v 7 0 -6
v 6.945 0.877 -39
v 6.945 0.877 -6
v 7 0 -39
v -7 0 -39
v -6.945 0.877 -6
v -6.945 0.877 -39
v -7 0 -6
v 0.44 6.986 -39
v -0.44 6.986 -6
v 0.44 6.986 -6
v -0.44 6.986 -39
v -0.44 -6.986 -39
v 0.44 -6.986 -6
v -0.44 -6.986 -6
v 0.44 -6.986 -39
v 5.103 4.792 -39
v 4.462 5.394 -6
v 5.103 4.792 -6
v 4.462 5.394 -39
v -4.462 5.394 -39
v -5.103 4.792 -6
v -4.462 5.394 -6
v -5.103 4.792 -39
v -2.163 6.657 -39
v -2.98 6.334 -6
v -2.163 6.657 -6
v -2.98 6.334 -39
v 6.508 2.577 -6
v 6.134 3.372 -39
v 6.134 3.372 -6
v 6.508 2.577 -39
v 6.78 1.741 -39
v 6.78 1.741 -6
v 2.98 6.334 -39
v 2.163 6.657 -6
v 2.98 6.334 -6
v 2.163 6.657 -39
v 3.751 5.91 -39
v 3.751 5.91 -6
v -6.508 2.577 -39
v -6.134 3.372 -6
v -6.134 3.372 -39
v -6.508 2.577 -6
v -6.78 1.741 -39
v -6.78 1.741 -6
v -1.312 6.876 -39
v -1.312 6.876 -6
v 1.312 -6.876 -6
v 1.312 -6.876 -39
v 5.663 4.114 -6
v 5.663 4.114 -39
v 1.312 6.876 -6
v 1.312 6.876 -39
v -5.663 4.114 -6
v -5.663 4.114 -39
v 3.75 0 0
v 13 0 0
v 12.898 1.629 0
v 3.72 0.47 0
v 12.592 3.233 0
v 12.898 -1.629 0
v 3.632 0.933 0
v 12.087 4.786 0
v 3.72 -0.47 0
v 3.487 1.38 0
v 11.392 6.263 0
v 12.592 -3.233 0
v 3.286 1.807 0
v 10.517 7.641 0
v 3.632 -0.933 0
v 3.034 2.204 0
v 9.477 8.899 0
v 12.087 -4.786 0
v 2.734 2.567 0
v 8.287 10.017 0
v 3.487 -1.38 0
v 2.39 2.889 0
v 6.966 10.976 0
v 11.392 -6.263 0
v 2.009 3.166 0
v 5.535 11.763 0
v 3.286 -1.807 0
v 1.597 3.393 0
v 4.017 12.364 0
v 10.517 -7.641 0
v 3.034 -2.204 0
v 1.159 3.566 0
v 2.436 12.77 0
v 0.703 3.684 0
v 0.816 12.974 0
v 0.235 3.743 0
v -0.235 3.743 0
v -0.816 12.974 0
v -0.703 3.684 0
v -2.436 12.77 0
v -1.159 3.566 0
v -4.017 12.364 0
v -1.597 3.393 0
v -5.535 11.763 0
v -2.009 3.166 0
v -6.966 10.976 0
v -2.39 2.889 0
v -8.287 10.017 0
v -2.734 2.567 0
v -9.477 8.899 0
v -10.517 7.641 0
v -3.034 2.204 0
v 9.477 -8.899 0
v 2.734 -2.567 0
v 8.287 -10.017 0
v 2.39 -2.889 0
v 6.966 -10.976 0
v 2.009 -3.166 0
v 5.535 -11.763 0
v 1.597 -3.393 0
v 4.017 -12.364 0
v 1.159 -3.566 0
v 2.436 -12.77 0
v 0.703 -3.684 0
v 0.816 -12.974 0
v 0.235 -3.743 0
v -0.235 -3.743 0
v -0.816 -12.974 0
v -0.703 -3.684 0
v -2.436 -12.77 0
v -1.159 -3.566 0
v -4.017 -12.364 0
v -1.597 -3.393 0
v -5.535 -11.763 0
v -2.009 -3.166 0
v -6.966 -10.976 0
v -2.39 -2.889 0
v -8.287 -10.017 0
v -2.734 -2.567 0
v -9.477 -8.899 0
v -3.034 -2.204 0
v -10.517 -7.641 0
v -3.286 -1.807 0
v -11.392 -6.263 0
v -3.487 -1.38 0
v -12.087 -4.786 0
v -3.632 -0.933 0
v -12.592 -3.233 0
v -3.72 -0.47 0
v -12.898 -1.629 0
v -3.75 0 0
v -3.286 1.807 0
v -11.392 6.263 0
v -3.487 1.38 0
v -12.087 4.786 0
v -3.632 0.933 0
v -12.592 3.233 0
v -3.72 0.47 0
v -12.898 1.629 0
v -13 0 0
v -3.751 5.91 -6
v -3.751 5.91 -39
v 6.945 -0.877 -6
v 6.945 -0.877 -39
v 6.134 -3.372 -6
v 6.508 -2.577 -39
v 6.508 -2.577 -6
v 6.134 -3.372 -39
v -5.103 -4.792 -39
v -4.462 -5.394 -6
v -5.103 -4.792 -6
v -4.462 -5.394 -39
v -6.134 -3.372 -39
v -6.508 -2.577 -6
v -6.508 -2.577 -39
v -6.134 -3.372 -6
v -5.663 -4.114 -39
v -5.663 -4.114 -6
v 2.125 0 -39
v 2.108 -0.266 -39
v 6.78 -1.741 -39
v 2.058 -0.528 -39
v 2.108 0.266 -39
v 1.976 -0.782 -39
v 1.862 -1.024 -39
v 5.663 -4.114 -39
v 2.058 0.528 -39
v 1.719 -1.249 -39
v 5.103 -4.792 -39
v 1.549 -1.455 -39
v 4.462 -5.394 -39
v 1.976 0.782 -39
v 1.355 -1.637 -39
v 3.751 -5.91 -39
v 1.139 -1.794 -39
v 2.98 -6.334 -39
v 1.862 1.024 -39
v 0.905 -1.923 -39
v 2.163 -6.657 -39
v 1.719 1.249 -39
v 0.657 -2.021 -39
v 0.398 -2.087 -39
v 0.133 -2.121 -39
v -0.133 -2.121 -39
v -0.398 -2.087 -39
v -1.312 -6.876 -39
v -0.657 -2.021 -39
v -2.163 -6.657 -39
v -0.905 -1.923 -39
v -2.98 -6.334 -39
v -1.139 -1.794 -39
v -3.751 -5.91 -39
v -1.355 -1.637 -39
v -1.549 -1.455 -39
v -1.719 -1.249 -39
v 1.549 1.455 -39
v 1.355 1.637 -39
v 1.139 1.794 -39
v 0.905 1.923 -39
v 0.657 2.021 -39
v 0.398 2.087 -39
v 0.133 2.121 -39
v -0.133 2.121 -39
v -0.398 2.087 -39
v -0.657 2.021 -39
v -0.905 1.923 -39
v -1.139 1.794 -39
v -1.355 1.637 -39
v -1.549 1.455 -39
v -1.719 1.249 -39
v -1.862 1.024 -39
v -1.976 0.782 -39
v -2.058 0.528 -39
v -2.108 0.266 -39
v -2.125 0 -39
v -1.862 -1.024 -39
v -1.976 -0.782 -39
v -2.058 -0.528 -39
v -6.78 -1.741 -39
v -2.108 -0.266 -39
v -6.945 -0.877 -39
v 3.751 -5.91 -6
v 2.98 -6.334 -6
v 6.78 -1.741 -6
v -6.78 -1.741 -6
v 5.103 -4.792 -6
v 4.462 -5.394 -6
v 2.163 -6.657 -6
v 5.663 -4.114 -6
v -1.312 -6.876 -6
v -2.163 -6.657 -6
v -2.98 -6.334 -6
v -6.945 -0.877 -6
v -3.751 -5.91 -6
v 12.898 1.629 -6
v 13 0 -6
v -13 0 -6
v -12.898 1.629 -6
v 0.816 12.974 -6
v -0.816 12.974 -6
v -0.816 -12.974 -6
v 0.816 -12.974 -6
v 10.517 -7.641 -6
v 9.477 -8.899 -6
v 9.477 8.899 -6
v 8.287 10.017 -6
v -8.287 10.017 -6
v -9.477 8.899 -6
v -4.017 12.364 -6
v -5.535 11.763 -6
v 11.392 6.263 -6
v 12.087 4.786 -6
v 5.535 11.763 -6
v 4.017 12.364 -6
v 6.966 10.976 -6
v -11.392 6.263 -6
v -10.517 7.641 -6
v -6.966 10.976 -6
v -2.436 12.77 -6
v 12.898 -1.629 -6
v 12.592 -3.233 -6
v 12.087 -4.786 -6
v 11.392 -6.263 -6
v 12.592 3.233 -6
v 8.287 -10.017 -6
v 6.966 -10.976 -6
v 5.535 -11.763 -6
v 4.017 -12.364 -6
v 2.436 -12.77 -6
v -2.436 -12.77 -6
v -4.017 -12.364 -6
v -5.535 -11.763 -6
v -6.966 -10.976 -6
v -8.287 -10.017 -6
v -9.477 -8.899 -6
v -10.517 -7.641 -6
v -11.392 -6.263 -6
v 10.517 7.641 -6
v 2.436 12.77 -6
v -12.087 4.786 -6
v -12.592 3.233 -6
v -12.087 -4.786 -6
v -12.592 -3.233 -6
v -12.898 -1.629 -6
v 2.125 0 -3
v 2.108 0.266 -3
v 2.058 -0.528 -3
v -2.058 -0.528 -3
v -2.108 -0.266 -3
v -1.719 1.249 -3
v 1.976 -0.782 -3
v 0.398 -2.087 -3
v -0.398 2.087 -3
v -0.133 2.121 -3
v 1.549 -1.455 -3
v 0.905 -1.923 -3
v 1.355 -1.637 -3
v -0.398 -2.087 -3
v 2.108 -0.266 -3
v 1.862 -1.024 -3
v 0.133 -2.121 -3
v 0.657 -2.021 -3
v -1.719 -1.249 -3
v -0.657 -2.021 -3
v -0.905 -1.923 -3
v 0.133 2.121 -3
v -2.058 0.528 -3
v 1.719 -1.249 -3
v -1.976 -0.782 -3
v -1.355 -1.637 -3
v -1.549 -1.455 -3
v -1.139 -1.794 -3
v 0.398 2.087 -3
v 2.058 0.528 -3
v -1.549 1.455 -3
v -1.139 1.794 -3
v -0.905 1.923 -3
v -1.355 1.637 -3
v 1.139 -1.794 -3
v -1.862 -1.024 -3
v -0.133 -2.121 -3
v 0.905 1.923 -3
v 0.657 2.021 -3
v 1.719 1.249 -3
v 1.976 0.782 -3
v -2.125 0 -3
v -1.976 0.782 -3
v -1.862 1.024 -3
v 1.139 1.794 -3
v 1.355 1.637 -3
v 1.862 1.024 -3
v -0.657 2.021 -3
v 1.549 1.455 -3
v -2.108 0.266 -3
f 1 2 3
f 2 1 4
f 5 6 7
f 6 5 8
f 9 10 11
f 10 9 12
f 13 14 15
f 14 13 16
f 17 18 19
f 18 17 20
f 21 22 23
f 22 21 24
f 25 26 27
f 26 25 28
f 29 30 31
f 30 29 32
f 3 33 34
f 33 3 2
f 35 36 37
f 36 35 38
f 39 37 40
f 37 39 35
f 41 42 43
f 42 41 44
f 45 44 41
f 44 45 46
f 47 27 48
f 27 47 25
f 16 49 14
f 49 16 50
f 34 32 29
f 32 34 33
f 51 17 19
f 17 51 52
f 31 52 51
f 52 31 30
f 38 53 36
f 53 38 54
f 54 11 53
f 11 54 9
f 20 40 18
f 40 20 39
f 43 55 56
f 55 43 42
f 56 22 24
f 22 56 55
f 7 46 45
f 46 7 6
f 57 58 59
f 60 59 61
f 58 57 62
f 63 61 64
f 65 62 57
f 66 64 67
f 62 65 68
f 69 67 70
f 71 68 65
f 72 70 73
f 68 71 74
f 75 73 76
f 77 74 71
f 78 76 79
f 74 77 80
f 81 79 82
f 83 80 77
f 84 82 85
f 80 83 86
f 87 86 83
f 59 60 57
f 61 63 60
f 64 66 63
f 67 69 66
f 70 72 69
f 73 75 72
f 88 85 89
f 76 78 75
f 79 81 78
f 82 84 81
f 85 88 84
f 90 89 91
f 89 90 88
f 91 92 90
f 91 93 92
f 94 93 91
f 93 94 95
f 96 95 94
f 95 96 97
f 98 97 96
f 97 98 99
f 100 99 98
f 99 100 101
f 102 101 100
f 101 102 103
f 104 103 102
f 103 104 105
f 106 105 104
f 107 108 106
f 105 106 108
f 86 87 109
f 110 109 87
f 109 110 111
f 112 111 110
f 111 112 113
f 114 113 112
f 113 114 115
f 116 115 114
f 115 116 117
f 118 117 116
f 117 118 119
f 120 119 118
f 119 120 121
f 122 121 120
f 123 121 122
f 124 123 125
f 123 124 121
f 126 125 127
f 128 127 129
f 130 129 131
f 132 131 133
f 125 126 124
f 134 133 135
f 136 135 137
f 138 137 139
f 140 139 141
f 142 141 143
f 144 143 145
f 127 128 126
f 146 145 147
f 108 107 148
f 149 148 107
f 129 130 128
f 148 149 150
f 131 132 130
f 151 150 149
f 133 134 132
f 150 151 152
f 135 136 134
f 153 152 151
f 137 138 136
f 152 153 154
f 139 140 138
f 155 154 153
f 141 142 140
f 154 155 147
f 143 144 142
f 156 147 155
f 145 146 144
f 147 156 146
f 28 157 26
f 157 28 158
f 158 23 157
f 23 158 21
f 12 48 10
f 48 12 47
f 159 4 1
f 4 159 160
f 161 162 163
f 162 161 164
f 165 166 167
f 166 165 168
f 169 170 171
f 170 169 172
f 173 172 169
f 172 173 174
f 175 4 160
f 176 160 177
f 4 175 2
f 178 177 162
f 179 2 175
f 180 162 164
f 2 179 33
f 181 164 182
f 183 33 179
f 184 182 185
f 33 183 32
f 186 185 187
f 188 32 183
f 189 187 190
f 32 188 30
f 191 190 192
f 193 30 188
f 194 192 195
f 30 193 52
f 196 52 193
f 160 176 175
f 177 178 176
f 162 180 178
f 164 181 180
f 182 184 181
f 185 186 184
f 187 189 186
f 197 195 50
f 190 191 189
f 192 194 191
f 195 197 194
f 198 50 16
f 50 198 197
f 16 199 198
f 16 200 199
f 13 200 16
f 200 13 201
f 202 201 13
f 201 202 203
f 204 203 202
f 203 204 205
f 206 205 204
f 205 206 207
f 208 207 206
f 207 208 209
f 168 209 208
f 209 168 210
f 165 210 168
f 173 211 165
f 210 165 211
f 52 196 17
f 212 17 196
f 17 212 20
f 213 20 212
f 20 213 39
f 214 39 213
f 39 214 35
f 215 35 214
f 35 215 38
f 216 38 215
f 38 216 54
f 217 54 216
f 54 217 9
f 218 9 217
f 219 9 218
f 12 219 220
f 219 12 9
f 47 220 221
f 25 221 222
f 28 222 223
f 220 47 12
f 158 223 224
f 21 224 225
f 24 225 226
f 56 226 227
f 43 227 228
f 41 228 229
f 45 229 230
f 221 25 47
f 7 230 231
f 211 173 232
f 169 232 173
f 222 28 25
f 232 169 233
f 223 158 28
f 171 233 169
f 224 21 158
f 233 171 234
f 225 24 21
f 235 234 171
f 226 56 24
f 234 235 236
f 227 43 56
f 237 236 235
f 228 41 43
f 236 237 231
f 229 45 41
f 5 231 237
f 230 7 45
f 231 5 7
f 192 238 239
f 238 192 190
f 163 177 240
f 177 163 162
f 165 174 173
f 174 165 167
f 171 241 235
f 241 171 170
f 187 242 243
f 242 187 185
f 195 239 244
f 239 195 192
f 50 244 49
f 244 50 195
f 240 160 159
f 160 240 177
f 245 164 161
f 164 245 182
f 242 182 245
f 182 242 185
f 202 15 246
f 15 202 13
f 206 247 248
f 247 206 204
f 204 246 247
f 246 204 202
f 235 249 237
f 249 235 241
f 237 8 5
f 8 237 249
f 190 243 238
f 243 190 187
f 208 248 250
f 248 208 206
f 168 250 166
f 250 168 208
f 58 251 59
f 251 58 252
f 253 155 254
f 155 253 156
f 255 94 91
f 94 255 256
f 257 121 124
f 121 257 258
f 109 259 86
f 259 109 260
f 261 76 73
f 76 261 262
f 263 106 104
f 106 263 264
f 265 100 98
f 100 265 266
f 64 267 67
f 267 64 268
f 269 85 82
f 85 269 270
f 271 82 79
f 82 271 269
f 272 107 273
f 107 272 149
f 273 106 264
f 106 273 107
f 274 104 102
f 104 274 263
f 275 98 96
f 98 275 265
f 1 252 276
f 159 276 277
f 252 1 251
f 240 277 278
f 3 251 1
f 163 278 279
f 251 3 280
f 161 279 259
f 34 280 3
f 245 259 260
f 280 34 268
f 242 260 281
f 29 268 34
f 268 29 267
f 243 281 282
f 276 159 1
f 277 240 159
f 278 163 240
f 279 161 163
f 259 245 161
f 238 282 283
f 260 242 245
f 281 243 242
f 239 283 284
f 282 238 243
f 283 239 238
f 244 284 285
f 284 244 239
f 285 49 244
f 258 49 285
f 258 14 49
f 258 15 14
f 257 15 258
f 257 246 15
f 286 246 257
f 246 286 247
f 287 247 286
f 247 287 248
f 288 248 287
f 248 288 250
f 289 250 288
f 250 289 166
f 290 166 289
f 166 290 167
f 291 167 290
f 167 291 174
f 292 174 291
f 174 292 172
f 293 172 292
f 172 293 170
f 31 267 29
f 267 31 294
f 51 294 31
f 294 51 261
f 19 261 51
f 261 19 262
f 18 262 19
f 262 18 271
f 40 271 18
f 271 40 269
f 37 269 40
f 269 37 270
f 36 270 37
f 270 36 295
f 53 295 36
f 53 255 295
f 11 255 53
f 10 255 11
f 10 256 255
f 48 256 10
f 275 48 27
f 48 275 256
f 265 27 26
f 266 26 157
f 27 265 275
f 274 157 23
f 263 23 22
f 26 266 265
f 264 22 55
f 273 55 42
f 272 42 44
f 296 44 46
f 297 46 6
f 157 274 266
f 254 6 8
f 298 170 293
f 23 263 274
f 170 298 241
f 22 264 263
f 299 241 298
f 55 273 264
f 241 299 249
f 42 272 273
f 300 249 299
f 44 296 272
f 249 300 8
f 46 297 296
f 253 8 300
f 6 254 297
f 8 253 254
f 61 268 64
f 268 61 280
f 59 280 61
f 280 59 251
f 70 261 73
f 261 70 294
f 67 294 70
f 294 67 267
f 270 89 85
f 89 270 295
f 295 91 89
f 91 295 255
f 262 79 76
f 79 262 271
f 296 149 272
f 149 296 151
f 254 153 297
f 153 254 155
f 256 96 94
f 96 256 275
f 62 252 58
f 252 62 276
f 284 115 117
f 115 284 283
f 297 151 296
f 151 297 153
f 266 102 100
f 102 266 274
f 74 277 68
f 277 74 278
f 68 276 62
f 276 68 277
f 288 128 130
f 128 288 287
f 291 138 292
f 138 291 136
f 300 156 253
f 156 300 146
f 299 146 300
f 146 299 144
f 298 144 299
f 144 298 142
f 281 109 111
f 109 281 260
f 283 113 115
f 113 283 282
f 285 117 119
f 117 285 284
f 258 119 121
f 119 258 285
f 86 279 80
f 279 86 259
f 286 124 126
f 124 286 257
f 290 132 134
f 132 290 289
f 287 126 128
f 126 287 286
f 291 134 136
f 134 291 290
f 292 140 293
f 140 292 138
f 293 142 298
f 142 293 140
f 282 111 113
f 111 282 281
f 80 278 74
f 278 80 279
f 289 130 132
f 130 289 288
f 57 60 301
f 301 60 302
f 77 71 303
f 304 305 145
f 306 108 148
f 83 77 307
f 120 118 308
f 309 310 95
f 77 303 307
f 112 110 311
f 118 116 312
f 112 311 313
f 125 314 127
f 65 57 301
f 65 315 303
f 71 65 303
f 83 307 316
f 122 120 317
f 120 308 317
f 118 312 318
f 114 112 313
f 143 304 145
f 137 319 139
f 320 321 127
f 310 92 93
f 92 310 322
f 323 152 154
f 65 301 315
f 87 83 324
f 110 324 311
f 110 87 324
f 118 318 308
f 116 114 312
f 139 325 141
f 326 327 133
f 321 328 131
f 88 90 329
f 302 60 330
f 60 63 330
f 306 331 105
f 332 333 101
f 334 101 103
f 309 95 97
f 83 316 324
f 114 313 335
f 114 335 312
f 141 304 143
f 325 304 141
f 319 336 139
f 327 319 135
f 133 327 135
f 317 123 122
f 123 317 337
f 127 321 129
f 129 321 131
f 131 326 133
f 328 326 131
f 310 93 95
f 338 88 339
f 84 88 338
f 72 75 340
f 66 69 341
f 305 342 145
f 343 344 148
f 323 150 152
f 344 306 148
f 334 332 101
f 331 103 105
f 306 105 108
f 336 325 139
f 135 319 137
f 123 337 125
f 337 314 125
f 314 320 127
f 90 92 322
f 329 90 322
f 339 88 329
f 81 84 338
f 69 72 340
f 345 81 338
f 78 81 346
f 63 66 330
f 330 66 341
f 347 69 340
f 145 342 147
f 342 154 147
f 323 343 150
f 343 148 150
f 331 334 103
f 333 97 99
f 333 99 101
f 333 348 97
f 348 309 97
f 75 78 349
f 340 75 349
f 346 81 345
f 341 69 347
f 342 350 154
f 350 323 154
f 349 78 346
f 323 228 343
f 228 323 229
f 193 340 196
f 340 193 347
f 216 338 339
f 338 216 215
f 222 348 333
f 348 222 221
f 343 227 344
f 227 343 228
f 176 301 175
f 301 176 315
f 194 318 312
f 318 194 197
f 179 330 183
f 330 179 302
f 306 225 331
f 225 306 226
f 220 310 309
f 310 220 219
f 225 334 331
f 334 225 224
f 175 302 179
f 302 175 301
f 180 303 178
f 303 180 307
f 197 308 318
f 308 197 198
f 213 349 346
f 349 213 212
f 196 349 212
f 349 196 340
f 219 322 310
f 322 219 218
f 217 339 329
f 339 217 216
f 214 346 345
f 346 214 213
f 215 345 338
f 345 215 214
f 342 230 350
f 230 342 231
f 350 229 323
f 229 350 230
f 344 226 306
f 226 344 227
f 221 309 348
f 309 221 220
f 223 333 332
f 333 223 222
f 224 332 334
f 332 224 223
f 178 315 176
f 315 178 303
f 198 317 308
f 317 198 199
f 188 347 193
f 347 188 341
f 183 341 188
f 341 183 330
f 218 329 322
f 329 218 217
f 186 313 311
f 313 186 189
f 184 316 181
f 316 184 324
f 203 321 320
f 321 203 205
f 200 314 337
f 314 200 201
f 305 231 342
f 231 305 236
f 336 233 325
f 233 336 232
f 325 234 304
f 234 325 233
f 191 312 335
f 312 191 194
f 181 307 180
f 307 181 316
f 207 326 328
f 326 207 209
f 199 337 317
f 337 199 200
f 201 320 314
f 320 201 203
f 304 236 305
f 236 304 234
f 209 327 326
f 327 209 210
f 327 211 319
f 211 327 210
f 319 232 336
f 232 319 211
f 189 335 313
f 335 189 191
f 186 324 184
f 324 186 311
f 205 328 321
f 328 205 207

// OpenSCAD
$fn = 50;


difference() {
	union() {
		translate(v = [0, 0, -39.0000000000]) {
			cylinder(h = 39, r = 7.0000000000);
		}
		translate(v = [0, 0, -6.0000000000]) {
			cylinder(h = 6, r = 13.0000000000);
		}
	}
	union() {
		translate(v = [0, 0, 0]) {
			rotate(a = [0, 0, 0]) {
				difference() {
					union() {
						#translate(v = [0, 0, -39.0000000000]) {
							cylinder(h = 39, r = 2.0000000000);
						}
						#translate(v = [0, 0, -3]) {
							cylinder(h = 3, r1 = 2.1250000000, r2 = 3.7500000000);
						}
						#translate(v = [0, 0, -39.0000000000]) {
							cylinder(h = 39, r = 2.1250000000);
						}
						#translate(v = [0, 0, -39.0000000000]) {
							cylinder(h = 39, r = 2.0000000000);
						}
					}
					union();
				}
			}
		}
	}
}
